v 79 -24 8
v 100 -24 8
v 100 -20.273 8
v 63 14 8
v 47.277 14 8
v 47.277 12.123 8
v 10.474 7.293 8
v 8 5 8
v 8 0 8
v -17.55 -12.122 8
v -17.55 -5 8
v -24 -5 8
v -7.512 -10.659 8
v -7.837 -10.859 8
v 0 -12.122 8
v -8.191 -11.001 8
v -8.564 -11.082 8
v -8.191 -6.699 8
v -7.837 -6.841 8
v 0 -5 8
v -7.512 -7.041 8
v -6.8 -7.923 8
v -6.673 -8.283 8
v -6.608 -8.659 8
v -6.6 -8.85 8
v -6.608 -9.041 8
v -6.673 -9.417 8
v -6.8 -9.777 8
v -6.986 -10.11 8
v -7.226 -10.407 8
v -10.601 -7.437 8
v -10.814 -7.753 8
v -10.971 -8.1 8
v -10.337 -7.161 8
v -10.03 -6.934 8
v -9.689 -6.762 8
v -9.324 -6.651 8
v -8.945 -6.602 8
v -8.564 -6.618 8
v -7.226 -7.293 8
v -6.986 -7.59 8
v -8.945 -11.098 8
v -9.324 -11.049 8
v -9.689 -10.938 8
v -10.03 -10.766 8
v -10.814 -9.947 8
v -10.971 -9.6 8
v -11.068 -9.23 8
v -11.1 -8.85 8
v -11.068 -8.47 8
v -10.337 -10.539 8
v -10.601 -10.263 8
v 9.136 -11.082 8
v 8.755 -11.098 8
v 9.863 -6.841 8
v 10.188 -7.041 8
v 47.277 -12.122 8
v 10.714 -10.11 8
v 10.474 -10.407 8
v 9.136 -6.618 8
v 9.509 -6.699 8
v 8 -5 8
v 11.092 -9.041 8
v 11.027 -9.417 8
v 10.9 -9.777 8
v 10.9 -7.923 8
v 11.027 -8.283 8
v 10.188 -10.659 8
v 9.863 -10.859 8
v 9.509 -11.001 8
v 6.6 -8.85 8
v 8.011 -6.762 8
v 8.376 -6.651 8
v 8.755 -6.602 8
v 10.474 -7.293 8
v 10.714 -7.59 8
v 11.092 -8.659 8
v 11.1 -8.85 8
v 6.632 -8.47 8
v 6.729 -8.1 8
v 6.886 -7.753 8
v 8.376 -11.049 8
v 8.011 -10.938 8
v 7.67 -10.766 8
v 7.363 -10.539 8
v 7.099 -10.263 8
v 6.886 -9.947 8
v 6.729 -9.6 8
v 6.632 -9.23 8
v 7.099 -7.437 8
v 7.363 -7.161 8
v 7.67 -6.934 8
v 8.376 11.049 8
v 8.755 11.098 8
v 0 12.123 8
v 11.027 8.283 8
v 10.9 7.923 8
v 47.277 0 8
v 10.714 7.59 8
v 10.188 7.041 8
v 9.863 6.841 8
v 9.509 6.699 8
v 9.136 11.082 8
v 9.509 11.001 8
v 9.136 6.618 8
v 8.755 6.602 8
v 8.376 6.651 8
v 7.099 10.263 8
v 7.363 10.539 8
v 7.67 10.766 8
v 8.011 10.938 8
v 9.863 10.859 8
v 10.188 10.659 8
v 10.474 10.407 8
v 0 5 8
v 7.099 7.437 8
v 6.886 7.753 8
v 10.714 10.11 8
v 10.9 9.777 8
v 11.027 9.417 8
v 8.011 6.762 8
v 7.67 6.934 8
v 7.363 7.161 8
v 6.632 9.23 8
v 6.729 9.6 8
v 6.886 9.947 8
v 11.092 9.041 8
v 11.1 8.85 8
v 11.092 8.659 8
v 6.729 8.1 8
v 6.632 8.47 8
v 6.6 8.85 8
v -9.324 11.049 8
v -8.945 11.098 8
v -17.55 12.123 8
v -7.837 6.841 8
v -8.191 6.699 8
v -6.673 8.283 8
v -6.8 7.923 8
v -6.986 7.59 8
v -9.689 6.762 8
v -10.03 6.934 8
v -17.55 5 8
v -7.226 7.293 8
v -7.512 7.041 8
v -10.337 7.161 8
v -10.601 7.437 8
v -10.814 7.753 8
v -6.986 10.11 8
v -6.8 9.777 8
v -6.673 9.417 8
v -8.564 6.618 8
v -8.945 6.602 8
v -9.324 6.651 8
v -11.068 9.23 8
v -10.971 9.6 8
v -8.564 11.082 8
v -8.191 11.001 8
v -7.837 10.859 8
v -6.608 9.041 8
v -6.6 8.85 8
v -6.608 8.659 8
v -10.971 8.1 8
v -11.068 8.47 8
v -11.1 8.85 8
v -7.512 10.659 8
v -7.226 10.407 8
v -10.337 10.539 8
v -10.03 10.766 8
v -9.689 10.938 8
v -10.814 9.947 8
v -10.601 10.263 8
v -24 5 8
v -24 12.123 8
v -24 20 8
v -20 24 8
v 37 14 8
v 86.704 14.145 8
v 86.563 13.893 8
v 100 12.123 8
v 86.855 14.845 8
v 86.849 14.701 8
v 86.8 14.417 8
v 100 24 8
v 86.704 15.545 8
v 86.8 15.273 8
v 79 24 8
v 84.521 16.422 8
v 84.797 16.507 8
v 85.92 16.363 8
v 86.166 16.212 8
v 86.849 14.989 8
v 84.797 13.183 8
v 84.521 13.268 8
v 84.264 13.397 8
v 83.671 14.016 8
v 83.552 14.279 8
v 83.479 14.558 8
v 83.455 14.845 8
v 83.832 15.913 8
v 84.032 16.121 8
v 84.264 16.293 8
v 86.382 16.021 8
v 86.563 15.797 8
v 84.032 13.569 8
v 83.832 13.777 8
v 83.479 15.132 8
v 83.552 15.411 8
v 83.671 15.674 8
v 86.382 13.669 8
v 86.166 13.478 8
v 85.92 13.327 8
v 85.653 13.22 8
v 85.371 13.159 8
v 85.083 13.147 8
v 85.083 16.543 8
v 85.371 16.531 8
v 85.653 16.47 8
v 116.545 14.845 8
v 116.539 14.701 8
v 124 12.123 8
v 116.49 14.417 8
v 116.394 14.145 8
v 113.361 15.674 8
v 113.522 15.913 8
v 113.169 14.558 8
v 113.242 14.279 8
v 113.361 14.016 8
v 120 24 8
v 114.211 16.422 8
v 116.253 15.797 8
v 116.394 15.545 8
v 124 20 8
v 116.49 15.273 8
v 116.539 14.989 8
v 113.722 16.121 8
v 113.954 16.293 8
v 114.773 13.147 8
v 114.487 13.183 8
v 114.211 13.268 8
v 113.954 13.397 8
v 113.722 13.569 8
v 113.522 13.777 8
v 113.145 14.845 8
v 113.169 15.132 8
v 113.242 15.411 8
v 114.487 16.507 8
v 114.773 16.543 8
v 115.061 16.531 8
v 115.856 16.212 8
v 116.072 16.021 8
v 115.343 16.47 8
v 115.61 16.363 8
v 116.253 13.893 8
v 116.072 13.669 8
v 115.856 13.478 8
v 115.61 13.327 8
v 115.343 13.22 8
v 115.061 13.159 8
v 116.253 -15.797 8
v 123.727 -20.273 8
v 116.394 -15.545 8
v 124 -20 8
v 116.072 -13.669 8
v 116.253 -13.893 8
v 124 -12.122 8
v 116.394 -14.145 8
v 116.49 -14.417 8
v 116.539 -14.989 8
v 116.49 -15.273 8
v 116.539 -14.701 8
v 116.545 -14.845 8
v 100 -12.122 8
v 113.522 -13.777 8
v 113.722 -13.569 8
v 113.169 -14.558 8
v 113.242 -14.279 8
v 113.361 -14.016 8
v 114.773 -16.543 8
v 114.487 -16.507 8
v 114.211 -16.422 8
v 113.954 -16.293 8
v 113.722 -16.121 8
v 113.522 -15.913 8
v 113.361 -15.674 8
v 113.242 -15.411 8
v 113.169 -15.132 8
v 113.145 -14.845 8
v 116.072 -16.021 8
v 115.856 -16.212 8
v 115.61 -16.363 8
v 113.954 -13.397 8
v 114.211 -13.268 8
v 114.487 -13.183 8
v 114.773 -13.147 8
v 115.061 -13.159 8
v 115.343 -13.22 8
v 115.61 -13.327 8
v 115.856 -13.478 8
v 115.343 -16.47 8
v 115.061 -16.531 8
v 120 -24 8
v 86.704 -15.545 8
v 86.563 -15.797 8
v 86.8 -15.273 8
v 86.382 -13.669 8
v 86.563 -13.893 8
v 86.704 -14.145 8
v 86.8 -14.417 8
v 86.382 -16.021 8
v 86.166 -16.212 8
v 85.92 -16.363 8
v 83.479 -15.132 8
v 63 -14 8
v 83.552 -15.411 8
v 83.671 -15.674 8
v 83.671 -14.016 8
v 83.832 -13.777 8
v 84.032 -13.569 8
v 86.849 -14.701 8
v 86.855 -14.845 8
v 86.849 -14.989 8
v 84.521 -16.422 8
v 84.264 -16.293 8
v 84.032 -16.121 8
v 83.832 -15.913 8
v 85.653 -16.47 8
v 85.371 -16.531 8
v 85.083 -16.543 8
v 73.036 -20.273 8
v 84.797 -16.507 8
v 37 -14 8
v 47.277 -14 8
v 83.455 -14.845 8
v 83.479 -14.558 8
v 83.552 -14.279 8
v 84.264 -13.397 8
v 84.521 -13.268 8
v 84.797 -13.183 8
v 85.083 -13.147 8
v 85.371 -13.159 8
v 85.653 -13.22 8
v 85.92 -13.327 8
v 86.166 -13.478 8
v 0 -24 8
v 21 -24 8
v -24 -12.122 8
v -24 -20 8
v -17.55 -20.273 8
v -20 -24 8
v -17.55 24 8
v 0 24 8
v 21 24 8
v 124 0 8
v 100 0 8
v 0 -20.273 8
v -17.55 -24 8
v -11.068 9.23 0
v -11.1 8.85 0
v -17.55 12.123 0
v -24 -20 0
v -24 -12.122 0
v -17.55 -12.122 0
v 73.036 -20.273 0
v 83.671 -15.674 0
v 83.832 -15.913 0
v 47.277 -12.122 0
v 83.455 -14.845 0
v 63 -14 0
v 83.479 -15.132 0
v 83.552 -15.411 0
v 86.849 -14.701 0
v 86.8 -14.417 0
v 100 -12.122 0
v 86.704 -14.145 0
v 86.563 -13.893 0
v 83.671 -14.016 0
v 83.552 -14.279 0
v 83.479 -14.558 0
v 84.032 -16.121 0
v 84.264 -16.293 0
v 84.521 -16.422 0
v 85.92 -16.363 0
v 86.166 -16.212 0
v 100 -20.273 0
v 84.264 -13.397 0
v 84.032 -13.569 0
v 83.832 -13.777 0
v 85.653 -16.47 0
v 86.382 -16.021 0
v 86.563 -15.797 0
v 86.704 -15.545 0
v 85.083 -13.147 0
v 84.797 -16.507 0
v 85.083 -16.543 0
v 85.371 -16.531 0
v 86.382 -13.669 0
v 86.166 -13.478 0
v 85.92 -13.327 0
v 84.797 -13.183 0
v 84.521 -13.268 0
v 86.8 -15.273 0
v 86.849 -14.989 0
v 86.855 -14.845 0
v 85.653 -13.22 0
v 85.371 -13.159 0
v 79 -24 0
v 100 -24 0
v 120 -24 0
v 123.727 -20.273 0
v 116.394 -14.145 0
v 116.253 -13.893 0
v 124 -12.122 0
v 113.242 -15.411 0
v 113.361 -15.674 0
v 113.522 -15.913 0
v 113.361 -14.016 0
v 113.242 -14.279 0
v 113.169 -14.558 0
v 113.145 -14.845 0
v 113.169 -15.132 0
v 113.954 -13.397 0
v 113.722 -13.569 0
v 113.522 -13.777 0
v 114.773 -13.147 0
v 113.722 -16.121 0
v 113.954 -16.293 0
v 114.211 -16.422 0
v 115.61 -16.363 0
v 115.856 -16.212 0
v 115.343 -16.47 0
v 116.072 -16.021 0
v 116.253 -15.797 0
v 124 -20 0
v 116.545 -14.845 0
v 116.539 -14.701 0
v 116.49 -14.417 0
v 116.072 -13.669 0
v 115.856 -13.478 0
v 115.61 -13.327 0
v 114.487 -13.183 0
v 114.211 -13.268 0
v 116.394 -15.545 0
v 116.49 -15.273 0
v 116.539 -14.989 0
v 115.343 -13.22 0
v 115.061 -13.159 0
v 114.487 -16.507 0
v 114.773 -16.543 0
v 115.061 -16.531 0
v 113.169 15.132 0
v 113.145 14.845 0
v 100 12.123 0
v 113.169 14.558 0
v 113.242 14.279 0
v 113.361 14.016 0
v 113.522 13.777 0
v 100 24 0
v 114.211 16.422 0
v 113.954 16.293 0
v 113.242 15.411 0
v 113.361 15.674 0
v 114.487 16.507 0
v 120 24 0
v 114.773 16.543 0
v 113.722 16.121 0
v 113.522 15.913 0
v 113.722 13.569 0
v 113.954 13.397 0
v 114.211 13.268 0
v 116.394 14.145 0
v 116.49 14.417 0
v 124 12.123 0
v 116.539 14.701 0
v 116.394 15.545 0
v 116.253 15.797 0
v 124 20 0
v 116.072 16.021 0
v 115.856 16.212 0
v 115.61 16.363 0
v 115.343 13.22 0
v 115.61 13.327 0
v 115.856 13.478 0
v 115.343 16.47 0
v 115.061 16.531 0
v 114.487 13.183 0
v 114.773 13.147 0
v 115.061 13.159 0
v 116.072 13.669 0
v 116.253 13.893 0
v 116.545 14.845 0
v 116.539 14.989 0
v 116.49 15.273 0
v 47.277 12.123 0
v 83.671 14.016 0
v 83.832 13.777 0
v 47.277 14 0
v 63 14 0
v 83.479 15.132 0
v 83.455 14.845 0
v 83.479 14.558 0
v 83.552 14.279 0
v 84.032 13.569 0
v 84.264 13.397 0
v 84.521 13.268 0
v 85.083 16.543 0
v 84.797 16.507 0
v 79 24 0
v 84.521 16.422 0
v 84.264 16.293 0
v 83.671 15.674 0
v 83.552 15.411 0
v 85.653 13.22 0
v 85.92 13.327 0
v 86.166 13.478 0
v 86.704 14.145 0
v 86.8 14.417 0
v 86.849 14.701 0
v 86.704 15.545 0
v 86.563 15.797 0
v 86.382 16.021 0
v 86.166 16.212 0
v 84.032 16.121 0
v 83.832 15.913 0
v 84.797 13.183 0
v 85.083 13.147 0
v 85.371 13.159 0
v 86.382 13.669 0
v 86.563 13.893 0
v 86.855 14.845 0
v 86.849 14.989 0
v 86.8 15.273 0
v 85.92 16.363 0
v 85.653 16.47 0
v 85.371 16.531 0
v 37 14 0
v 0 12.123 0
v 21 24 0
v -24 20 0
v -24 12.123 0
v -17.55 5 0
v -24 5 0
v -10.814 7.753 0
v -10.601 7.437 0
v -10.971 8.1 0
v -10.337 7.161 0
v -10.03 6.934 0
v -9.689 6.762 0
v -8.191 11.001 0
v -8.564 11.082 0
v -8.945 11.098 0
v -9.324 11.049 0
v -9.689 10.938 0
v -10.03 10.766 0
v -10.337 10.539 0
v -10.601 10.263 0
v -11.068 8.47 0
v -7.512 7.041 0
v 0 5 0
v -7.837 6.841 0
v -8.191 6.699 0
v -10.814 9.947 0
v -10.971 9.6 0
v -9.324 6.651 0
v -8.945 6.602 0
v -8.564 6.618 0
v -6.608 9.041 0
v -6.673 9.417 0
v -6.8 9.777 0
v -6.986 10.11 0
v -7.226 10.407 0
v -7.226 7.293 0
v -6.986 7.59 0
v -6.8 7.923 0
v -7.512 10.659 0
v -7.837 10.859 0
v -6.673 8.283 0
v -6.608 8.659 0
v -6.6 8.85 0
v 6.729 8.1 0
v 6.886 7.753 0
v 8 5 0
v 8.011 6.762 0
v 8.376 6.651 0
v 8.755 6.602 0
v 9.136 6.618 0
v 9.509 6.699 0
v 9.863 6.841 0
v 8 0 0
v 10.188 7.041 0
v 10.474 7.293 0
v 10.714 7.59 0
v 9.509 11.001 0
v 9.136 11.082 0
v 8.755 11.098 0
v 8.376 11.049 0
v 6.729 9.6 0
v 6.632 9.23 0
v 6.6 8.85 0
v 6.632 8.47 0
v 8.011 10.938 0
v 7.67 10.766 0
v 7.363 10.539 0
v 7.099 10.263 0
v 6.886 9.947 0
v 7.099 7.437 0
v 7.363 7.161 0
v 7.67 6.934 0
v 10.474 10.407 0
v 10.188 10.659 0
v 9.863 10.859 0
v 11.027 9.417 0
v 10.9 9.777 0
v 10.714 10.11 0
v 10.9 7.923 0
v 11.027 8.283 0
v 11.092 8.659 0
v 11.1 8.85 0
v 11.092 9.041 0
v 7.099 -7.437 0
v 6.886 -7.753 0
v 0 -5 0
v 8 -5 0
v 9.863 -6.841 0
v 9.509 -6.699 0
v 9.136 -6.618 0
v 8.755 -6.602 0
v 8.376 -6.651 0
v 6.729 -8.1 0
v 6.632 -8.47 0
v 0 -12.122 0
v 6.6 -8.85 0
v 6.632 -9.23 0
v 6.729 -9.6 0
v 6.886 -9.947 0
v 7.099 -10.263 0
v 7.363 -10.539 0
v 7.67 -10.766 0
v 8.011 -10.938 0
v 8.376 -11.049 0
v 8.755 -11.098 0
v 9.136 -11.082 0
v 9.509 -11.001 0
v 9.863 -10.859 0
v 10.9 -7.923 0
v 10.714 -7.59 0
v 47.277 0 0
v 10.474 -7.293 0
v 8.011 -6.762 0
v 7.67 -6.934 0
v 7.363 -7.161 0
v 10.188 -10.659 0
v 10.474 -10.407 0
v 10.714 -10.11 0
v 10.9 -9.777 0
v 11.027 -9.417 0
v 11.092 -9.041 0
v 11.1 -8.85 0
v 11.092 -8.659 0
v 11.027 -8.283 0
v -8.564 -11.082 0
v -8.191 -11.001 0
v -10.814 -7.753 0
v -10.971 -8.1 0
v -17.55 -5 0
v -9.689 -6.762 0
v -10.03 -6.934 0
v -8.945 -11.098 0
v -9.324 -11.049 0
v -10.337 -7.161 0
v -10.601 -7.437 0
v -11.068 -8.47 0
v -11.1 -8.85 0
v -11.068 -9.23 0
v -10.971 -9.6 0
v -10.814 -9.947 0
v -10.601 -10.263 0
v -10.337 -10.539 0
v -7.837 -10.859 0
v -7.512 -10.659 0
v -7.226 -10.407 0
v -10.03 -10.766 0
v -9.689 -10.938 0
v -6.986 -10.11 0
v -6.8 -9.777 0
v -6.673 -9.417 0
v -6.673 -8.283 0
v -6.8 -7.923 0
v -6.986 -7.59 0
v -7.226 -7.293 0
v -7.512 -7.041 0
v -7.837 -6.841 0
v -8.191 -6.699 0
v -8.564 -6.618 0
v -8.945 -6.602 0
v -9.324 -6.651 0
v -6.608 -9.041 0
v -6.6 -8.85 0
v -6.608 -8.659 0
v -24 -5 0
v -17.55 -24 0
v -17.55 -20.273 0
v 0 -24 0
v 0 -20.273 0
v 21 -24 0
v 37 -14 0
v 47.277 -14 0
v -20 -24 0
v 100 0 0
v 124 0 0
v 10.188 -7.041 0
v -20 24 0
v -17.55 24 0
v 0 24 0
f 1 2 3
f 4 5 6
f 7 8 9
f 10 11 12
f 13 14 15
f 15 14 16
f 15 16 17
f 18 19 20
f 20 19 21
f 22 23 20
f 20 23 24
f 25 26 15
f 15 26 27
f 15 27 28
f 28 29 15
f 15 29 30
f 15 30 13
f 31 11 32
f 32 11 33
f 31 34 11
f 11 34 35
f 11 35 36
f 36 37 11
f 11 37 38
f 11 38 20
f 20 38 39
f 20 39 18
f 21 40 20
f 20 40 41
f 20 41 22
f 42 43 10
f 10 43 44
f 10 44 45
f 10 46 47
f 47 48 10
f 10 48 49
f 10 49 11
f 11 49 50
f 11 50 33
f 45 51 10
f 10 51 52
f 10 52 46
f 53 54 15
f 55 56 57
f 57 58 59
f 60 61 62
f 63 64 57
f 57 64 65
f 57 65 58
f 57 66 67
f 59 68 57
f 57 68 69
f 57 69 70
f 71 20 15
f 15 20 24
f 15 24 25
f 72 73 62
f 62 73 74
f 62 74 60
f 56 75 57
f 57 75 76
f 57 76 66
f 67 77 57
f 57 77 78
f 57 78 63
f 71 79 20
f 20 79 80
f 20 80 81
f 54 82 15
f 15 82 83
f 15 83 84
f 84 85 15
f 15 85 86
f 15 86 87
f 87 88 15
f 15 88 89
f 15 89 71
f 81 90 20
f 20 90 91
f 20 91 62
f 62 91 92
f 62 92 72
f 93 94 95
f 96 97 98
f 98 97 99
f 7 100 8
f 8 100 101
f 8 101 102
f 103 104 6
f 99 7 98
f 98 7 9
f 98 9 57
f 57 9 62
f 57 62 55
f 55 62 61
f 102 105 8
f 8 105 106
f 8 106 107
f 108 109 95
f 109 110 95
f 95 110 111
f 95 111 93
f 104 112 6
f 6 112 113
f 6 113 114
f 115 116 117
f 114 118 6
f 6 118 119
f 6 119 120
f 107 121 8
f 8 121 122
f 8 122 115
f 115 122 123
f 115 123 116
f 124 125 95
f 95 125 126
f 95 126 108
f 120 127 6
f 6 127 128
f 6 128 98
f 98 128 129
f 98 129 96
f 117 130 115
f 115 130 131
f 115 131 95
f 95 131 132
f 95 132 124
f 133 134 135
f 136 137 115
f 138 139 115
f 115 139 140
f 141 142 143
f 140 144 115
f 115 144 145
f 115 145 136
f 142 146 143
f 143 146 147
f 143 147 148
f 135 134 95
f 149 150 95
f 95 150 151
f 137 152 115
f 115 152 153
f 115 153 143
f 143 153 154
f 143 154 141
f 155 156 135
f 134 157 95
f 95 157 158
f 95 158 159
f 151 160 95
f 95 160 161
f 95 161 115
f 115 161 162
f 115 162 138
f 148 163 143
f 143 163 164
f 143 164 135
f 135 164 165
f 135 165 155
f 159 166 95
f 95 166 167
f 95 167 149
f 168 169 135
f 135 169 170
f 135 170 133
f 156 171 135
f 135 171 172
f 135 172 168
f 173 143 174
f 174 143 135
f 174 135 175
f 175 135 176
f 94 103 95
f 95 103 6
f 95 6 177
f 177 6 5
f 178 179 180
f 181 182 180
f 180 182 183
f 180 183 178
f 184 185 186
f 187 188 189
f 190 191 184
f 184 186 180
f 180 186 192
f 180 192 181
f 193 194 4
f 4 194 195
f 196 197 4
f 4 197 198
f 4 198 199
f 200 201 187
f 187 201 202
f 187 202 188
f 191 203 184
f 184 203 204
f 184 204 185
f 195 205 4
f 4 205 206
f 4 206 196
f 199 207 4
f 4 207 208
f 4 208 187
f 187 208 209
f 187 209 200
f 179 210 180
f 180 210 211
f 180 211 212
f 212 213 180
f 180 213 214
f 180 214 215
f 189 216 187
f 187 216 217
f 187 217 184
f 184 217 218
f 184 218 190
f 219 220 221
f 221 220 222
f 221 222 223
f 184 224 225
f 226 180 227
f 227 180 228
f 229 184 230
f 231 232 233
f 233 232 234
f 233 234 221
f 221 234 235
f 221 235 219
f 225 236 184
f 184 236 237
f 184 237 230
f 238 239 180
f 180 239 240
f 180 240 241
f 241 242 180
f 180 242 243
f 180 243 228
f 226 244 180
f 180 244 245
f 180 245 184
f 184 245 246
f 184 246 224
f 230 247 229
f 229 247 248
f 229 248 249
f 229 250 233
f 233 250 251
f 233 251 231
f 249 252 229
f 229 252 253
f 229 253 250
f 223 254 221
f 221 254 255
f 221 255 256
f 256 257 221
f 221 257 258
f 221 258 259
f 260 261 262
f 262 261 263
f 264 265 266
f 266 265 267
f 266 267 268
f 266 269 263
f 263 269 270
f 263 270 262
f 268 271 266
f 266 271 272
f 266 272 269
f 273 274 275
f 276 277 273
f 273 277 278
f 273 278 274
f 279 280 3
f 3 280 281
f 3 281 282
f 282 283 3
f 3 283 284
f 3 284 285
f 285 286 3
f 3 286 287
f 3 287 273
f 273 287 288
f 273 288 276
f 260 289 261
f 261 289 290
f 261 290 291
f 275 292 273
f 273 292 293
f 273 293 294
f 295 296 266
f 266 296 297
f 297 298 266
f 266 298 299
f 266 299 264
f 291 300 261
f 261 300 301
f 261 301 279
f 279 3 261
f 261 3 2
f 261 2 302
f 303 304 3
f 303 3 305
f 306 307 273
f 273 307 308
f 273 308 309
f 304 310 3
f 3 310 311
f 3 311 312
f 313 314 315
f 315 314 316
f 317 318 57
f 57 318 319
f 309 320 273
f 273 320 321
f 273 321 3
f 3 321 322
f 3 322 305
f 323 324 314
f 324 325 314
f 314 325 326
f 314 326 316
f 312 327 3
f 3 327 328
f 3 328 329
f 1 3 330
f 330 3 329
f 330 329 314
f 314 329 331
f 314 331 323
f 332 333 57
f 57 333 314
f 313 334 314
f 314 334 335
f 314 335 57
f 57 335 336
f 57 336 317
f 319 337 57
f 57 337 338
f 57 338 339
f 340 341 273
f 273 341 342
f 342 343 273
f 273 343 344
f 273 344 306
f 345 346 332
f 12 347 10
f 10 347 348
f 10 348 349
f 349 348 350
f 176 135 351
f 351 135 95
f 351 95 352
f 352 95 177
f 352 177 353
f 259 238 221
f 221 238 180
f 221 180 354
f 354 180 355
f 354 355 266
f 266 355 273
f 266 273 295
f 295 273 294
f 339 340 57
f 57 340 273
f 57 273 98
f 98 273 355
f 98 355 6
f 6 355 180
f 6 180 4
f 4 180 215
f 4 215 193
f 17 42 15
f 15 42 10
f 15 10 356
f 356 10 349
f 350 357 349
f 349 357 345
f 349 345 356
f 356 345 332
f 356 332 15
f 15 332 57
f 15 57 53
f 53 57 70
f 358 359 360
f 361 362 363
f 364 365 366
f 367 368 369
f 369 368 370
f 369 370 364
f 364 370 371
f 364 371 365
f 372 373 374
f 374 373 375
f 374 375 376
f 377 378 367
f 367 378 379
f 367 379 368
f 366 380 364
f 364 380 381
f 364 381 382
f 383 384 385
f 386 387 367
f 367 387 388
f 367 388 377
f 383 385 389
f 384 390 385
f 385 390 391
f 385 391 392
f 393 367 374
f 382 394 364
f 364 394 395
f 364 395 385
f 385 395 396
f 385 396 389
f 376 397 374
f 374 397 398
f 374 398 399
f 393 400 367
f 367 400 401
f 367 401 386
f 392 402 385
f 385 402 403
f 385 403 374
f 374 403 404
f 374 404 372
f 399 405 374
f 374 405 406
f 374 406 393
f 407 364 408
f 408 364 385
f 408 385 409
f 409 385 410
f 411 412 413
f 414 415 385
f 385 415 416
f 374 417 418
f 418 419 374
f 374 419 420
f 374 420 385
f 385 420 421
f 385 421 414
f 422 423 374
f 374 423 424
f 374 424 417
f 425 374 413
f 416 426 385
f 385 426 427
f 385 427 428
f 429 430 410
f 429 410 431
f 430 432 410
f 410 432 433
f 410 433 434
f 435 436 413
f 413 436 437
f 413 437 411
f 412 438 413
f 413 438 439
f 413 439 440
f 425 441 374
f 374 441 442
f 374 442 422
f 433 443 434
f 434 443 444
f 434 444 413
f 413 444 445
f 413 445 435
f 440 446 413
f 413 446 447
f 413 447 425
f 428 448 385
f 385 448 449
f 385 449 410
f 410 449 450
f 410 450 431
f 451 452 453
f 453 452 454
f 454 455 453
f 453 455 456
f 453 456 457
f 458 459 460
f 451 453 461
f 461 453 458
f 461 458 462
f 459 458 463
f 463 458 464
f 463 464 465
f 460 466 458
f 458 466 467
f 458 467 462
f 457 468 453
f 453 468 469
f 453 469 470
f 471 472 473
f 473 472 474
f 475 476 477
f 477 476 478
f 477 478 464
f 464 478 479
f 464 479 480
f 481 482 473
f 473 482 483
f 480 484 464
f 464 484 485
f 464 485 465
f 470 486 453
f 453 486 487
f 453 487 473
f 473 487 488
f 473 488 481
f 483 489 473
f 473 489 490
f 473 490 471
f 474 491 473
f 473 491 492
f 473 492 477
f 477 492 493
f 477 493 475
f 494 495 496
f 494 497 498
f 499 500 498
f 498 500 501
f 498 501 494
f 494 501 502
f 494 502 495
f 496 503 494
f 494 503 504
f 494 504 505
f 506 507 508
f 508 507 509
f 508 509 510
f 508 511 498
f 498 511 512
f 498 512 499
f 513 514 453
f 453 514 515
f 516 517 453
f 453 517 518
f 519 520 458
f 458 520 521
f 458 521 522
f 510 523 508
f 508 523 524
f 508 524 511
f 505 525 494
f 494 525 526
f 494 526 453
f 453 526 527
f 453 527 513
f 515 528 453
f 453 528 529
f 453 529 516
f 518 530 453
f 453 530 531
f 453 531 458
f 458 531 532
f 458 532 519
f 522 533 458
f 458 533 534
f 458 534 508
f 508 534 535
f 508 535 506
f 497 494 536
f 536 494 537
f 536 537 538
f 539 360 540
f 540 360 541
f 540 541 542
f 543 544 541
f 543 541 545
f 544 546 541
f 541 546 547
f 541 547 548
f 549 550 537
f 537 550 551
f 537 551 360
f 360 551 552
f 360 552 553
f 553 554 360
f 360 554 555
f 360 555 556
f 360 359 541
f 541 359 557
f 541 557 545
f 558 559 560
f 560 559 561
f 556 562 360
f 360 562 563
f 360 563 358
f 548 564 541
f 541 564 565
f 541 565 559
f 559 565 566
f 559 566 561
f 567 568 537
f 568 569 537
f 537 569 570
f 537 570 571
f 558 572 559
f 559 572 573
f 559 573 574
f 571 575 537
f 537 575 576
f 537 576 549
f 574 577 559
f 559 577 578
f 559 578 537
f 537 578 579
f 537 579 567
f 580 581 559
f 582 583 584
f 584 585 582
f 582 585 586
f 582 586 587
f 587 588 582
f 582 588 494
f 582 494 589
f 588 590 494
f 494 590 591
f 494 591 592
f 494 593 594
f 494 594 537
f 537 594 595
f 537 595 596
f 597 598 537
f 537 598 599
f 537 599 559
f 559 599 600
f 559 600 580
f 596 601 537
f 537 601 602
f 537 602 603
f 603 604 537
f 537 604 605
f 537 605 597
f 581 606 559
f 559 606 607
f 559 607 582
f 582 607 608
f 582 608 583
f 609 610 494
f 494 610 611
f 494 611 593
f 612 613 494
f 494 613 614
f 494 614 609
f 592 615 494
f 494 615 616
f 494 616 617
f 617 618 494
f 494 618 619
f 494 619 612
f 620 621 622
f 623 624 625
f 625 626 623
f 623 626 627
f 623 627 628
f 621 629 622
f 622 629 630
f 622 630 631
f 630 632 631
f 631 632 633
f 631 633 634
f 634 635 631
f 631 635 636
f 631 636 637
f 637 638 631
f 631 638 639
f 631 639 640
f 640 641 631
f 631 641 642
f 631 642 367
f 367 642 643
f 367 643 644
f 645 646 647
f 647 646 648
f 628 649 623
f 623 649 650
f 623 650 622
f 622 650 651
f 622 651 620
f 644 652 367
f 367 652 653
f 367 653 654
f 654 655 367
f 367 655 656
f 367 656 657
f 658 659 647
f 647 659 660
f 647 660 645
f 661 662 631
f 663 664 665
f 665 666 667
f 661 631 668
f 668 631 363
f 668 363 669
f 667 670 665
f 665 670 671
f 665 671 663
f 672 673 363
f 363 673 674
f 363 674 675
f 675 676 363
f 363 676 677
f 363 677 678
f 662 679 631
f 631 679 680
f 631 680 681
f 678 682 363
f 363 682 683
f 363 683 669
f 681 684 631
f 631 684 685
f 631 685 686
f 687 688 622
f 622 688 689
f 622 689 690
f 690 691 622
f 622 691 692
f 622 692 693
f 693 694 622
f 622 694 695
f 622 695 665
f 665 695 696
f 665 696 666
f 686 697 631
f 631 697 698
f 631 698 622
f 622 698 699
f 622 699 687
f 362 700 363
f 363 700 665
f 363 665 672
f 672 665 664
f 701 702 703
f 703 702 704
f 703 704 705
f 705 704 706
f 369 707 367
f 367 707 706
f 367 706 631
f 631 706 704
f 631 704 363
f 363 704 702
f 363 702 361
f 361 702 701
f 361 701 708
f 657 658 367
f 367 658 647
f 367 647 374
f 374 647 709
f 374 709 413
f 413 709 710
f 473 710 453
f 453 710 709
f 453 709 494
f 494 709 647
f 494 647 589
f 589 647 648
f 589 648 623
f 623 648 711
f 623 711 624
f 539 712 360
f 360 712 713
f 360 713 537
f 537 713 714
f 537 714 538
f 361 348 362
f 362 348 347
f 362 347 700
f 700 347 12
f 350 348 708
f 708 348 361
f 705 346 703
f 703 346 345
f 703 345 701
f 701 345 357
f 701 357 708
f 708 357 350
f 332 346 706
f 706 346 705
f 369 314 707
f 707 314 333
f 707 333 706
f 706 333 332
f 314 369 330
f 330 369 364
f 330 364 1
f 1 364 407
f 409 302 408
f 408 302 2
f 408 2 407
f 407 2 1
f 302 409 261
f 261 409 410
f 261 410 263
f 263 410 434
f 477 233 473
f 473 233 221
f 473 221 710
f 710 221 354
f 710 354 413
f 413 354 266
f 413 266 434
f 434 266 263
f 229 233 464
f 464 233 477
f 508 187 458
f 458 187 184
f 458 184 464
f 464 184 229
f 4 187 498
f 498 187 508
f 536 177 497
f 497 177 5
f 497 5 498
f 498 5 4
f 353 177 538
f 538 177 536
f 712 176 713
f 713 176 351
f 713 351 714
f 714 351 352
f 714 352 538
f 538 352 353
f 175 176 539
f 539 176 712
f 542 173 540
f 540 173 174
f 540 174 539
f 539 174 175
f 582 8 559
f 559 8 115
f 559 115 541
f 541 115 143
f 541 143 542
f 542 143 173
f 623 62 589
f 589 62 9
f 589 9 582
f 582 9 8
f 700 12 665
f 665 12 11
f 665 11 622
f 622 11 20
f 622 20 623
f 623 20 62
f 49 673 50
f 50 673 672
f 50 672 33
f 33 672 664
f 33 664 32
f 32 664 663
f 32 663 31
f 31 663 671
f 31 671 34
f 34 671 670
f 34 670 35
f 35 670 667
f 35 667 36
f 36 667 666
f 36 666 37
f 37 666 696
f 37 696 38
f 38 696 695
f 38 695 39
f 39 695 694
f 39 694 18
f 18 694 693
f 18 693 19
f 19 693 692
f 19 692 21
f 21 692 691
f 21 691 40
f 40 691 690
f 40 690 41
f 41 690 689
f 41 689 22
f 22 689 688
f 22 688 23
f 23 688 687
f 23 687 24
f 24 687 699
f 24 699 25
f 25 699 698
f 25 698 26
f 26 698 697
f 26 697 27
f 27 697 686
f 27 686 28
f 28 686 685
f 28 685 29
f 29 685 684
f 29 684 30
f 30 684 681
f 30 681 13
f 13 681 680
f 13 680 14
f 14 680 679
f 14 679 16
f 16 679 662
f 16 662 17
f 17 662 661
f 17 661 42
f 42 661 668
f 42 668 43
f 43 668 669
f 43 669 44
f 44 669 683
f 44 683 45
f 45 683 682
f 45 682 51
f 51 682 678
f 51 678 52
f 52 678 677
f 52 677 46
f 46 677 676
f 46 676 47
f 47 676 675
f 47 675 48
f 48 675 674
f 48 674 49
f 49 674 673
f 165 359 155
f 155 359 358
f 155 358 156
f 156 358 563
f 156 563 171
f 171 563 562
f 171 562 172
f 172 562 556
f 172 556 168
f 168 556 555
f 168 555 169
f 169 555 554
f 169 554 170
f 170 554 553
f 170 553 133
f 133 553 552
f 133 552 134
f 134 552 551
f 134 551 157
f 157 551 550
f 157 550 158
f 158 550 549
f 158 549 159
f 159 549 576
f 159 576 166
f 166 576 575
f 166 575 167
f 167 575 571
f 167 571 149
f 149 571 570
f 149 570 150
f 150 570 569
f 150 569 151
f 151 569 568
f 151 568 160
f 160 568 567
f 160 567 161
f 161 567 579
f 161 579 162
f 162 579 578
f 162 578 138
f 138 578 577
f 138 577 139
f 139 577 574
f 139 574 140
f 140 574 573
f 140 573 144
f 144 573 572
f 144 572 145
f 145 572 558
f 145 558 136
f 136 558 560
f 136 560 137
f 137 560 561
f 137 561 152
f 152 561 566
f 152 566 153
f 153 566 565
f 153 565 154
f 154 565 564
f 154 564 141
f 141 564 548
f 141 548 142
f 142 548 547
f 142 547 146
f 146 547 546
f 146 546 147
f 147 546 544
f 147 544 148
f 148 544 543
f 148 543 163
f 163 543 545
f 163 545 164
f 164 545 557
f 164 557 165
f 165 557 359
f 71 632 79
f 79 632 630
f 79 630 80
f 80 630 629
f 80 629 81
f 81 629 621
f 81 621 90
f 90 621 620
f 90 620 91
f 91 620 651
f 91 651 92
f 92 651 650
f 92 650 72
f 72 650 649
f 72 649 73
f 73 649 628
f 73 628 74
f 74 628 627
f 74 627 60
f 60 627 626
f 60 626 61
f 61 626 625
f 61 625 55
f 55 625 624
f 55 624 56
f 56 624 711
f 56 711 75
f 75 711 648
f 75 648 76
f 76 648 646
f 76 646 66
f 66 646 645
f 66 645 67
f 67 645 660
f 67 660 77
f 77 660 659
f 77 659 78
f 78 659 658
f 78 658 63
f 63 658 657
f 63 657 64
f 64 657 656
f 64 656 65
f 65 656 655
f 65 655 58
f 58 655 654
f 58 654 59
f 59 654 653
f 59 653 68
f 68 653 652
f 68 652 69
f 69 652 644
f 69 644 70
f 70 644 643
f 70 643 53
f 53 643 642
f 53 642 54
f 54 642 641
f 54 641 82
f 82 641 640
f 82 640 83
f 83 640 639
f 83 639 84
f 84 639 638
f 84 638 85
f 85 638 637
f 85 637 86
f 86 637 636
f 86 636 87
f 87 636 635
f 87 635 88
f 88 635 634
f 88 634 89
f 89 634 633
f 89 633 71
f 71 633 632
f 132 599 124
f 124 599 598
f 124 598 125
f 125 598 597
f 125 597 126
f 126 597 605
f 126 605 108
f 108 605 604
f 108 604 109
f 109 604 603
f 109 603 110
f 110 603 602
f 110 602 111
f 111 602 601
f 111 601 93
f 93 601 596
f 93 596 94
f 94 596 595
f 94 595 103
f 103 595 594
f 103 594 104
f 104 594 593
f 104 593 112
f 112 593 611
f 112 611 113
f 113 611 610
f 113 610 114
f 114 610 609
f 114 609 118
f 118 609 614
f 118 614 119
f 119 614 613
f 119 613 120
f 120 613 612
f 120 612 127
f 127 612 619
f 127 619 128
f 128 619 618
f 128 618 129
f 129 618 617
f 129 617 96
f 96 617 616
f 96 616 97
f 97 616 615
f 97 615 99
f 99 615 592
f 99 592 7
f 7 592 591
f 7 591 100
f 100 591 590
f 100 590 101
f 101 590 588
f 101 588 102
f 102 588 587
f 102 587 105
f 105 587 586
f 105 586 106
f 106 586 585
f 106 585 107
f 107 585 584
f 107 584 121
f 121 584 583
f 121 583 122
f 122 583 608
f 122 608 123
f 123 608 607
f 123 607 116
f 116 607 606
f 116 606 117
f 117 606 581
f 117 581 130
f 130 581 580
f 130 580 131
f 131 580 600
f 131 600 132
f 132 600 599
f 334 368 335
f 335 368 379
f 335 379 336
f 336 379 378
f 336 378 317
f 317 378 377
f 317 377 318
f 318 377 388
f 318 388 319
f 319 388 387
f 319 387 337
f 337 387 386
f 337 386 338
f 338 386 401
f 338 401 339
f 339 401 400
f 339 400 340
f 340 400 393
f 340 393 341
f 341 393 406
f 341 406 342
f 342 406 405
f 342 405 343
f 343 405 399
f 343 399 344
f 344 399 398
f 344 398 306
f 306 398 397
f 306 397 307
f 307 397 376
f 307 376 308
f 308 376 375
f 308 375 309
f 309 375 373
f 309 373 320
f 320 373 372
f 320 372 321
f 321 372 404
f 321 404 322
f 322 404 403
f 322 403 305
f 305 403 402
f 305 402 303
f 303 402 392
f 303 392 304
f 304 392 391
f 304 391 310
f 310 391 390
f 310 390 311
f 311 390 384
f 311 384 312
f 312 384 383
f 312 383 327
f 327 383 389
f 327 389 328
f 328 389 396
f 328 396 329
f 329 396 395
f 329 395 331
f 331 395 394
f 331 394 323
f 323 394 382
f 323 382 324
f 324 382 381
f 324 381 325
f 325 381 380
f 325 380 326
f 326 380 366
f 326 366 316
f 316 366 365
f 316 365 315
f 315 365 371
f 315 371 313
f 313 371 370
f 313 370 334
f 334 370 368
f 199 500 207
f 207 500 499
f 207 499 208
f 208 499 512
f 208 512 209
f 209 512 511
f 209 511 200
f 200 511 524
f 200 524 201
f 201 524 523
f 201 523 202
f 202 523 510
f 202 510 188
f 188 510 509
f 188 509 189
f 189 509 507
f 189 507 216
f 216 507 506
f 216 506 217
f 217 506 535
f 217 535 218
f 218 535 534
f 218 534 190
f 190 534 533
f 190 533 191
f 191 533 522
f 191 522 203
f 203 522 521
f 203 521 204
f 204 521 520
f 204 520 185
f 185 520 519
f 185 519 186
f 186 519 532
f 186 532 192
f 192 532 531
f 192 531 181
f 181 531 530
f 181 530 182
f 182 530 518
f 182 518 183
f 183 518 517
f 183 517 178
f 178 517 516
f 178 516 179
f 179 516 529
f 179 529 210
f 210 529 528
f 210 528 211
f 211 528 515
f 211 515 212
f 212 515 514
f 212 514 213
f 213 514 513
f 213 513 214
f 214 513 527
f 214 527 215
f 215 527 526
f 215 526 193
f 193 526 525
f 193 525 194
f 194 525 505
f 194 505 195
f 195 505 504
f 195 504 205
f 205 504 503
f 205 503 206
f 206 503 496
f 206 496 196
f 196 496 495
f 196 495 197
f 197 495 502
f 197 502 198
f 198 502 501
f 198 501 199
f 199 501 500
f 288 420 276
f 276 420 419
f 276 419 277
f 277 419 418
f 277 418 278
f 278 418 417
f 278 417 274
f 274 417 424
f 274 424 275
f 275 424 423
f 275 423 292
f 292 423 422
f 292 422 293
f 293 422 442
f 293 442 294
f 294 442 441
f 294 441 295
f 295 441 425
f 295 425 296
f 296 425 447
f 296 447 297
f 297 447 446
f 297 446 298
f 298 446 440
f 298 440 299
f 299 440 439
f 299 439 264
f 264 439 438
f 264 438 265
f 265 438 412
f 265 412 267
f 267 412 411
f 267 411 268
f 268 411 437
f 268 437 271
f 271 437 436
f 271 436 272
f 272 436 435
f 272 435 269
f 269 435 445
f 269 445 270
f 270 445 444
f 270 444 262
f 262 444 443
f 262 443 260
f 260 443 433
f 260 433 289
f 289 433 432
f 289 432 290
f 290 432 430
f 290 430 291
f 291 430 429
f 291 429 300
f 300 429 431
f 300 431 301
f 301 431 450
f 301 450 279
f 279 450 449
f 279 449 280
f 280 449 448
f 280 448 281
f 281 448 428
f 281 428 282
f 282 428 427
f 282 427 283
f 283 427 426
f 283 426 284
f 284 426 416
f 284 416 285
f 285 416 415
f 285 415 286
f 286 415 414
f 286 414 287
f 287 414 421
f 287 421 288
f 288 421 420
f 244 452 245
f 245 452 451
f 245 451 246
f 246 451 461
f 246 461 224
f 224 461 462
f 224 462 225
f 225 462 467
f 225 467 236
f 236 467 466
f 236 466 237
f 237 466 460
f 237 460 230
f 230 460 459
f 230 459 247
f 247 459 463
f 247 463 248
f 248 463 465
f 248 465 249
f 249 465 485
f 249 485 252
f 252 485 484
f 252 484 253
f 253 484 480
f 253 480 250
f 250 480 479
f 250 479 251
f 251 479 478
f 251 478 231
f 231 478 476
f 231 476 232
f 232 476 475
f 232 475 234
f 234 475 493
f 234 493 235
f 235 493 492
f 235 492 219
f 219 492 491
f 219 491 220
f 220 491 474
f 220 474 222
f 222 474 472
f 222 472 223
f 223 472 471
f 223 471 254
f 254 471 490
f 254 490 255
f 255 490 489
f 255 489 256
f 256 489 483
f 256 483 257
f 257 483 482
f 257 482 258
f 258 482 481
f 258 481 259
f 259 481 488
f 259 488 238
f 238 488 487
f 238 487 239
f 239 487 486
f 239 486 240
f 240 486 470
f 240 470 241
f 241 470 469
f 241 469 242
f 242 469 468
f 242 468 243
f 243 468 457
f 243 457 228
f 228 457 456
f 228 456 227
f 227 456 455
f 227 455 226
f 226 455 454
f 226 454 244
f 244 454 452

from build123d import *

# Parameters (mm, degrees)
SKETCH_1_R        = 2.25
SKETCH_1_R_2      = 1.7
EXTRUDE_259_DEPTH = 8


with BuildPart() as part:
    # 草图1 → Extrude 259 (new body)
    with BuildSketch(Plane.XY):
        Polygon((-24, -20), (-20, -24), (21, -24), (37, -14), (63, -14), (79, -24), (120, -24), (124, -20), (124, 20), (120, 24), (79, 24), (63, 14), (37, 14), (21, 24), (-20, 24), (-24, 20), (-24, 5), (8, 5), (8, -5), (-24, -5), align=None)
        with Locations((-8.85, -8.85)):
            Circle(SKETCH_1_R, mode=Mode.SUBTRACT)
        with Locations((-8.85, 8.85)):
            Circle(SKETCH_1_R, mode=Mode.SUBTRACT)
        with Locations((8.85, -8.85)):
            Circle(SKETCH_1_R, mode=Mode.SUBTRACT)
        with Locations((8.85, 8.85)):
            Circle(SKETCH_1_R, mode=Mode.SUBTRACT)
        with Locations((85.155, -14.845)):
            Circle(SKETCH_1_R_2, mode=Mode.SUBTRACT)
        with Locations((85.155, 14.845)):
            Circle(SKETCH_1_R_2, mode=Mode.SUBTRACT)
        with Locations((114.845, -14.845)):
            Circle(SKETCH_1_R_2, mode=Mode.SUBTRACT)
        with Locations((114.845, 14.845)):
            Circle(SKETCH_1_R_2, mode=Mode.SUBTRACT)
    extrude(amount=EXTRUDE_259_DEPTH)


solid = part.part
